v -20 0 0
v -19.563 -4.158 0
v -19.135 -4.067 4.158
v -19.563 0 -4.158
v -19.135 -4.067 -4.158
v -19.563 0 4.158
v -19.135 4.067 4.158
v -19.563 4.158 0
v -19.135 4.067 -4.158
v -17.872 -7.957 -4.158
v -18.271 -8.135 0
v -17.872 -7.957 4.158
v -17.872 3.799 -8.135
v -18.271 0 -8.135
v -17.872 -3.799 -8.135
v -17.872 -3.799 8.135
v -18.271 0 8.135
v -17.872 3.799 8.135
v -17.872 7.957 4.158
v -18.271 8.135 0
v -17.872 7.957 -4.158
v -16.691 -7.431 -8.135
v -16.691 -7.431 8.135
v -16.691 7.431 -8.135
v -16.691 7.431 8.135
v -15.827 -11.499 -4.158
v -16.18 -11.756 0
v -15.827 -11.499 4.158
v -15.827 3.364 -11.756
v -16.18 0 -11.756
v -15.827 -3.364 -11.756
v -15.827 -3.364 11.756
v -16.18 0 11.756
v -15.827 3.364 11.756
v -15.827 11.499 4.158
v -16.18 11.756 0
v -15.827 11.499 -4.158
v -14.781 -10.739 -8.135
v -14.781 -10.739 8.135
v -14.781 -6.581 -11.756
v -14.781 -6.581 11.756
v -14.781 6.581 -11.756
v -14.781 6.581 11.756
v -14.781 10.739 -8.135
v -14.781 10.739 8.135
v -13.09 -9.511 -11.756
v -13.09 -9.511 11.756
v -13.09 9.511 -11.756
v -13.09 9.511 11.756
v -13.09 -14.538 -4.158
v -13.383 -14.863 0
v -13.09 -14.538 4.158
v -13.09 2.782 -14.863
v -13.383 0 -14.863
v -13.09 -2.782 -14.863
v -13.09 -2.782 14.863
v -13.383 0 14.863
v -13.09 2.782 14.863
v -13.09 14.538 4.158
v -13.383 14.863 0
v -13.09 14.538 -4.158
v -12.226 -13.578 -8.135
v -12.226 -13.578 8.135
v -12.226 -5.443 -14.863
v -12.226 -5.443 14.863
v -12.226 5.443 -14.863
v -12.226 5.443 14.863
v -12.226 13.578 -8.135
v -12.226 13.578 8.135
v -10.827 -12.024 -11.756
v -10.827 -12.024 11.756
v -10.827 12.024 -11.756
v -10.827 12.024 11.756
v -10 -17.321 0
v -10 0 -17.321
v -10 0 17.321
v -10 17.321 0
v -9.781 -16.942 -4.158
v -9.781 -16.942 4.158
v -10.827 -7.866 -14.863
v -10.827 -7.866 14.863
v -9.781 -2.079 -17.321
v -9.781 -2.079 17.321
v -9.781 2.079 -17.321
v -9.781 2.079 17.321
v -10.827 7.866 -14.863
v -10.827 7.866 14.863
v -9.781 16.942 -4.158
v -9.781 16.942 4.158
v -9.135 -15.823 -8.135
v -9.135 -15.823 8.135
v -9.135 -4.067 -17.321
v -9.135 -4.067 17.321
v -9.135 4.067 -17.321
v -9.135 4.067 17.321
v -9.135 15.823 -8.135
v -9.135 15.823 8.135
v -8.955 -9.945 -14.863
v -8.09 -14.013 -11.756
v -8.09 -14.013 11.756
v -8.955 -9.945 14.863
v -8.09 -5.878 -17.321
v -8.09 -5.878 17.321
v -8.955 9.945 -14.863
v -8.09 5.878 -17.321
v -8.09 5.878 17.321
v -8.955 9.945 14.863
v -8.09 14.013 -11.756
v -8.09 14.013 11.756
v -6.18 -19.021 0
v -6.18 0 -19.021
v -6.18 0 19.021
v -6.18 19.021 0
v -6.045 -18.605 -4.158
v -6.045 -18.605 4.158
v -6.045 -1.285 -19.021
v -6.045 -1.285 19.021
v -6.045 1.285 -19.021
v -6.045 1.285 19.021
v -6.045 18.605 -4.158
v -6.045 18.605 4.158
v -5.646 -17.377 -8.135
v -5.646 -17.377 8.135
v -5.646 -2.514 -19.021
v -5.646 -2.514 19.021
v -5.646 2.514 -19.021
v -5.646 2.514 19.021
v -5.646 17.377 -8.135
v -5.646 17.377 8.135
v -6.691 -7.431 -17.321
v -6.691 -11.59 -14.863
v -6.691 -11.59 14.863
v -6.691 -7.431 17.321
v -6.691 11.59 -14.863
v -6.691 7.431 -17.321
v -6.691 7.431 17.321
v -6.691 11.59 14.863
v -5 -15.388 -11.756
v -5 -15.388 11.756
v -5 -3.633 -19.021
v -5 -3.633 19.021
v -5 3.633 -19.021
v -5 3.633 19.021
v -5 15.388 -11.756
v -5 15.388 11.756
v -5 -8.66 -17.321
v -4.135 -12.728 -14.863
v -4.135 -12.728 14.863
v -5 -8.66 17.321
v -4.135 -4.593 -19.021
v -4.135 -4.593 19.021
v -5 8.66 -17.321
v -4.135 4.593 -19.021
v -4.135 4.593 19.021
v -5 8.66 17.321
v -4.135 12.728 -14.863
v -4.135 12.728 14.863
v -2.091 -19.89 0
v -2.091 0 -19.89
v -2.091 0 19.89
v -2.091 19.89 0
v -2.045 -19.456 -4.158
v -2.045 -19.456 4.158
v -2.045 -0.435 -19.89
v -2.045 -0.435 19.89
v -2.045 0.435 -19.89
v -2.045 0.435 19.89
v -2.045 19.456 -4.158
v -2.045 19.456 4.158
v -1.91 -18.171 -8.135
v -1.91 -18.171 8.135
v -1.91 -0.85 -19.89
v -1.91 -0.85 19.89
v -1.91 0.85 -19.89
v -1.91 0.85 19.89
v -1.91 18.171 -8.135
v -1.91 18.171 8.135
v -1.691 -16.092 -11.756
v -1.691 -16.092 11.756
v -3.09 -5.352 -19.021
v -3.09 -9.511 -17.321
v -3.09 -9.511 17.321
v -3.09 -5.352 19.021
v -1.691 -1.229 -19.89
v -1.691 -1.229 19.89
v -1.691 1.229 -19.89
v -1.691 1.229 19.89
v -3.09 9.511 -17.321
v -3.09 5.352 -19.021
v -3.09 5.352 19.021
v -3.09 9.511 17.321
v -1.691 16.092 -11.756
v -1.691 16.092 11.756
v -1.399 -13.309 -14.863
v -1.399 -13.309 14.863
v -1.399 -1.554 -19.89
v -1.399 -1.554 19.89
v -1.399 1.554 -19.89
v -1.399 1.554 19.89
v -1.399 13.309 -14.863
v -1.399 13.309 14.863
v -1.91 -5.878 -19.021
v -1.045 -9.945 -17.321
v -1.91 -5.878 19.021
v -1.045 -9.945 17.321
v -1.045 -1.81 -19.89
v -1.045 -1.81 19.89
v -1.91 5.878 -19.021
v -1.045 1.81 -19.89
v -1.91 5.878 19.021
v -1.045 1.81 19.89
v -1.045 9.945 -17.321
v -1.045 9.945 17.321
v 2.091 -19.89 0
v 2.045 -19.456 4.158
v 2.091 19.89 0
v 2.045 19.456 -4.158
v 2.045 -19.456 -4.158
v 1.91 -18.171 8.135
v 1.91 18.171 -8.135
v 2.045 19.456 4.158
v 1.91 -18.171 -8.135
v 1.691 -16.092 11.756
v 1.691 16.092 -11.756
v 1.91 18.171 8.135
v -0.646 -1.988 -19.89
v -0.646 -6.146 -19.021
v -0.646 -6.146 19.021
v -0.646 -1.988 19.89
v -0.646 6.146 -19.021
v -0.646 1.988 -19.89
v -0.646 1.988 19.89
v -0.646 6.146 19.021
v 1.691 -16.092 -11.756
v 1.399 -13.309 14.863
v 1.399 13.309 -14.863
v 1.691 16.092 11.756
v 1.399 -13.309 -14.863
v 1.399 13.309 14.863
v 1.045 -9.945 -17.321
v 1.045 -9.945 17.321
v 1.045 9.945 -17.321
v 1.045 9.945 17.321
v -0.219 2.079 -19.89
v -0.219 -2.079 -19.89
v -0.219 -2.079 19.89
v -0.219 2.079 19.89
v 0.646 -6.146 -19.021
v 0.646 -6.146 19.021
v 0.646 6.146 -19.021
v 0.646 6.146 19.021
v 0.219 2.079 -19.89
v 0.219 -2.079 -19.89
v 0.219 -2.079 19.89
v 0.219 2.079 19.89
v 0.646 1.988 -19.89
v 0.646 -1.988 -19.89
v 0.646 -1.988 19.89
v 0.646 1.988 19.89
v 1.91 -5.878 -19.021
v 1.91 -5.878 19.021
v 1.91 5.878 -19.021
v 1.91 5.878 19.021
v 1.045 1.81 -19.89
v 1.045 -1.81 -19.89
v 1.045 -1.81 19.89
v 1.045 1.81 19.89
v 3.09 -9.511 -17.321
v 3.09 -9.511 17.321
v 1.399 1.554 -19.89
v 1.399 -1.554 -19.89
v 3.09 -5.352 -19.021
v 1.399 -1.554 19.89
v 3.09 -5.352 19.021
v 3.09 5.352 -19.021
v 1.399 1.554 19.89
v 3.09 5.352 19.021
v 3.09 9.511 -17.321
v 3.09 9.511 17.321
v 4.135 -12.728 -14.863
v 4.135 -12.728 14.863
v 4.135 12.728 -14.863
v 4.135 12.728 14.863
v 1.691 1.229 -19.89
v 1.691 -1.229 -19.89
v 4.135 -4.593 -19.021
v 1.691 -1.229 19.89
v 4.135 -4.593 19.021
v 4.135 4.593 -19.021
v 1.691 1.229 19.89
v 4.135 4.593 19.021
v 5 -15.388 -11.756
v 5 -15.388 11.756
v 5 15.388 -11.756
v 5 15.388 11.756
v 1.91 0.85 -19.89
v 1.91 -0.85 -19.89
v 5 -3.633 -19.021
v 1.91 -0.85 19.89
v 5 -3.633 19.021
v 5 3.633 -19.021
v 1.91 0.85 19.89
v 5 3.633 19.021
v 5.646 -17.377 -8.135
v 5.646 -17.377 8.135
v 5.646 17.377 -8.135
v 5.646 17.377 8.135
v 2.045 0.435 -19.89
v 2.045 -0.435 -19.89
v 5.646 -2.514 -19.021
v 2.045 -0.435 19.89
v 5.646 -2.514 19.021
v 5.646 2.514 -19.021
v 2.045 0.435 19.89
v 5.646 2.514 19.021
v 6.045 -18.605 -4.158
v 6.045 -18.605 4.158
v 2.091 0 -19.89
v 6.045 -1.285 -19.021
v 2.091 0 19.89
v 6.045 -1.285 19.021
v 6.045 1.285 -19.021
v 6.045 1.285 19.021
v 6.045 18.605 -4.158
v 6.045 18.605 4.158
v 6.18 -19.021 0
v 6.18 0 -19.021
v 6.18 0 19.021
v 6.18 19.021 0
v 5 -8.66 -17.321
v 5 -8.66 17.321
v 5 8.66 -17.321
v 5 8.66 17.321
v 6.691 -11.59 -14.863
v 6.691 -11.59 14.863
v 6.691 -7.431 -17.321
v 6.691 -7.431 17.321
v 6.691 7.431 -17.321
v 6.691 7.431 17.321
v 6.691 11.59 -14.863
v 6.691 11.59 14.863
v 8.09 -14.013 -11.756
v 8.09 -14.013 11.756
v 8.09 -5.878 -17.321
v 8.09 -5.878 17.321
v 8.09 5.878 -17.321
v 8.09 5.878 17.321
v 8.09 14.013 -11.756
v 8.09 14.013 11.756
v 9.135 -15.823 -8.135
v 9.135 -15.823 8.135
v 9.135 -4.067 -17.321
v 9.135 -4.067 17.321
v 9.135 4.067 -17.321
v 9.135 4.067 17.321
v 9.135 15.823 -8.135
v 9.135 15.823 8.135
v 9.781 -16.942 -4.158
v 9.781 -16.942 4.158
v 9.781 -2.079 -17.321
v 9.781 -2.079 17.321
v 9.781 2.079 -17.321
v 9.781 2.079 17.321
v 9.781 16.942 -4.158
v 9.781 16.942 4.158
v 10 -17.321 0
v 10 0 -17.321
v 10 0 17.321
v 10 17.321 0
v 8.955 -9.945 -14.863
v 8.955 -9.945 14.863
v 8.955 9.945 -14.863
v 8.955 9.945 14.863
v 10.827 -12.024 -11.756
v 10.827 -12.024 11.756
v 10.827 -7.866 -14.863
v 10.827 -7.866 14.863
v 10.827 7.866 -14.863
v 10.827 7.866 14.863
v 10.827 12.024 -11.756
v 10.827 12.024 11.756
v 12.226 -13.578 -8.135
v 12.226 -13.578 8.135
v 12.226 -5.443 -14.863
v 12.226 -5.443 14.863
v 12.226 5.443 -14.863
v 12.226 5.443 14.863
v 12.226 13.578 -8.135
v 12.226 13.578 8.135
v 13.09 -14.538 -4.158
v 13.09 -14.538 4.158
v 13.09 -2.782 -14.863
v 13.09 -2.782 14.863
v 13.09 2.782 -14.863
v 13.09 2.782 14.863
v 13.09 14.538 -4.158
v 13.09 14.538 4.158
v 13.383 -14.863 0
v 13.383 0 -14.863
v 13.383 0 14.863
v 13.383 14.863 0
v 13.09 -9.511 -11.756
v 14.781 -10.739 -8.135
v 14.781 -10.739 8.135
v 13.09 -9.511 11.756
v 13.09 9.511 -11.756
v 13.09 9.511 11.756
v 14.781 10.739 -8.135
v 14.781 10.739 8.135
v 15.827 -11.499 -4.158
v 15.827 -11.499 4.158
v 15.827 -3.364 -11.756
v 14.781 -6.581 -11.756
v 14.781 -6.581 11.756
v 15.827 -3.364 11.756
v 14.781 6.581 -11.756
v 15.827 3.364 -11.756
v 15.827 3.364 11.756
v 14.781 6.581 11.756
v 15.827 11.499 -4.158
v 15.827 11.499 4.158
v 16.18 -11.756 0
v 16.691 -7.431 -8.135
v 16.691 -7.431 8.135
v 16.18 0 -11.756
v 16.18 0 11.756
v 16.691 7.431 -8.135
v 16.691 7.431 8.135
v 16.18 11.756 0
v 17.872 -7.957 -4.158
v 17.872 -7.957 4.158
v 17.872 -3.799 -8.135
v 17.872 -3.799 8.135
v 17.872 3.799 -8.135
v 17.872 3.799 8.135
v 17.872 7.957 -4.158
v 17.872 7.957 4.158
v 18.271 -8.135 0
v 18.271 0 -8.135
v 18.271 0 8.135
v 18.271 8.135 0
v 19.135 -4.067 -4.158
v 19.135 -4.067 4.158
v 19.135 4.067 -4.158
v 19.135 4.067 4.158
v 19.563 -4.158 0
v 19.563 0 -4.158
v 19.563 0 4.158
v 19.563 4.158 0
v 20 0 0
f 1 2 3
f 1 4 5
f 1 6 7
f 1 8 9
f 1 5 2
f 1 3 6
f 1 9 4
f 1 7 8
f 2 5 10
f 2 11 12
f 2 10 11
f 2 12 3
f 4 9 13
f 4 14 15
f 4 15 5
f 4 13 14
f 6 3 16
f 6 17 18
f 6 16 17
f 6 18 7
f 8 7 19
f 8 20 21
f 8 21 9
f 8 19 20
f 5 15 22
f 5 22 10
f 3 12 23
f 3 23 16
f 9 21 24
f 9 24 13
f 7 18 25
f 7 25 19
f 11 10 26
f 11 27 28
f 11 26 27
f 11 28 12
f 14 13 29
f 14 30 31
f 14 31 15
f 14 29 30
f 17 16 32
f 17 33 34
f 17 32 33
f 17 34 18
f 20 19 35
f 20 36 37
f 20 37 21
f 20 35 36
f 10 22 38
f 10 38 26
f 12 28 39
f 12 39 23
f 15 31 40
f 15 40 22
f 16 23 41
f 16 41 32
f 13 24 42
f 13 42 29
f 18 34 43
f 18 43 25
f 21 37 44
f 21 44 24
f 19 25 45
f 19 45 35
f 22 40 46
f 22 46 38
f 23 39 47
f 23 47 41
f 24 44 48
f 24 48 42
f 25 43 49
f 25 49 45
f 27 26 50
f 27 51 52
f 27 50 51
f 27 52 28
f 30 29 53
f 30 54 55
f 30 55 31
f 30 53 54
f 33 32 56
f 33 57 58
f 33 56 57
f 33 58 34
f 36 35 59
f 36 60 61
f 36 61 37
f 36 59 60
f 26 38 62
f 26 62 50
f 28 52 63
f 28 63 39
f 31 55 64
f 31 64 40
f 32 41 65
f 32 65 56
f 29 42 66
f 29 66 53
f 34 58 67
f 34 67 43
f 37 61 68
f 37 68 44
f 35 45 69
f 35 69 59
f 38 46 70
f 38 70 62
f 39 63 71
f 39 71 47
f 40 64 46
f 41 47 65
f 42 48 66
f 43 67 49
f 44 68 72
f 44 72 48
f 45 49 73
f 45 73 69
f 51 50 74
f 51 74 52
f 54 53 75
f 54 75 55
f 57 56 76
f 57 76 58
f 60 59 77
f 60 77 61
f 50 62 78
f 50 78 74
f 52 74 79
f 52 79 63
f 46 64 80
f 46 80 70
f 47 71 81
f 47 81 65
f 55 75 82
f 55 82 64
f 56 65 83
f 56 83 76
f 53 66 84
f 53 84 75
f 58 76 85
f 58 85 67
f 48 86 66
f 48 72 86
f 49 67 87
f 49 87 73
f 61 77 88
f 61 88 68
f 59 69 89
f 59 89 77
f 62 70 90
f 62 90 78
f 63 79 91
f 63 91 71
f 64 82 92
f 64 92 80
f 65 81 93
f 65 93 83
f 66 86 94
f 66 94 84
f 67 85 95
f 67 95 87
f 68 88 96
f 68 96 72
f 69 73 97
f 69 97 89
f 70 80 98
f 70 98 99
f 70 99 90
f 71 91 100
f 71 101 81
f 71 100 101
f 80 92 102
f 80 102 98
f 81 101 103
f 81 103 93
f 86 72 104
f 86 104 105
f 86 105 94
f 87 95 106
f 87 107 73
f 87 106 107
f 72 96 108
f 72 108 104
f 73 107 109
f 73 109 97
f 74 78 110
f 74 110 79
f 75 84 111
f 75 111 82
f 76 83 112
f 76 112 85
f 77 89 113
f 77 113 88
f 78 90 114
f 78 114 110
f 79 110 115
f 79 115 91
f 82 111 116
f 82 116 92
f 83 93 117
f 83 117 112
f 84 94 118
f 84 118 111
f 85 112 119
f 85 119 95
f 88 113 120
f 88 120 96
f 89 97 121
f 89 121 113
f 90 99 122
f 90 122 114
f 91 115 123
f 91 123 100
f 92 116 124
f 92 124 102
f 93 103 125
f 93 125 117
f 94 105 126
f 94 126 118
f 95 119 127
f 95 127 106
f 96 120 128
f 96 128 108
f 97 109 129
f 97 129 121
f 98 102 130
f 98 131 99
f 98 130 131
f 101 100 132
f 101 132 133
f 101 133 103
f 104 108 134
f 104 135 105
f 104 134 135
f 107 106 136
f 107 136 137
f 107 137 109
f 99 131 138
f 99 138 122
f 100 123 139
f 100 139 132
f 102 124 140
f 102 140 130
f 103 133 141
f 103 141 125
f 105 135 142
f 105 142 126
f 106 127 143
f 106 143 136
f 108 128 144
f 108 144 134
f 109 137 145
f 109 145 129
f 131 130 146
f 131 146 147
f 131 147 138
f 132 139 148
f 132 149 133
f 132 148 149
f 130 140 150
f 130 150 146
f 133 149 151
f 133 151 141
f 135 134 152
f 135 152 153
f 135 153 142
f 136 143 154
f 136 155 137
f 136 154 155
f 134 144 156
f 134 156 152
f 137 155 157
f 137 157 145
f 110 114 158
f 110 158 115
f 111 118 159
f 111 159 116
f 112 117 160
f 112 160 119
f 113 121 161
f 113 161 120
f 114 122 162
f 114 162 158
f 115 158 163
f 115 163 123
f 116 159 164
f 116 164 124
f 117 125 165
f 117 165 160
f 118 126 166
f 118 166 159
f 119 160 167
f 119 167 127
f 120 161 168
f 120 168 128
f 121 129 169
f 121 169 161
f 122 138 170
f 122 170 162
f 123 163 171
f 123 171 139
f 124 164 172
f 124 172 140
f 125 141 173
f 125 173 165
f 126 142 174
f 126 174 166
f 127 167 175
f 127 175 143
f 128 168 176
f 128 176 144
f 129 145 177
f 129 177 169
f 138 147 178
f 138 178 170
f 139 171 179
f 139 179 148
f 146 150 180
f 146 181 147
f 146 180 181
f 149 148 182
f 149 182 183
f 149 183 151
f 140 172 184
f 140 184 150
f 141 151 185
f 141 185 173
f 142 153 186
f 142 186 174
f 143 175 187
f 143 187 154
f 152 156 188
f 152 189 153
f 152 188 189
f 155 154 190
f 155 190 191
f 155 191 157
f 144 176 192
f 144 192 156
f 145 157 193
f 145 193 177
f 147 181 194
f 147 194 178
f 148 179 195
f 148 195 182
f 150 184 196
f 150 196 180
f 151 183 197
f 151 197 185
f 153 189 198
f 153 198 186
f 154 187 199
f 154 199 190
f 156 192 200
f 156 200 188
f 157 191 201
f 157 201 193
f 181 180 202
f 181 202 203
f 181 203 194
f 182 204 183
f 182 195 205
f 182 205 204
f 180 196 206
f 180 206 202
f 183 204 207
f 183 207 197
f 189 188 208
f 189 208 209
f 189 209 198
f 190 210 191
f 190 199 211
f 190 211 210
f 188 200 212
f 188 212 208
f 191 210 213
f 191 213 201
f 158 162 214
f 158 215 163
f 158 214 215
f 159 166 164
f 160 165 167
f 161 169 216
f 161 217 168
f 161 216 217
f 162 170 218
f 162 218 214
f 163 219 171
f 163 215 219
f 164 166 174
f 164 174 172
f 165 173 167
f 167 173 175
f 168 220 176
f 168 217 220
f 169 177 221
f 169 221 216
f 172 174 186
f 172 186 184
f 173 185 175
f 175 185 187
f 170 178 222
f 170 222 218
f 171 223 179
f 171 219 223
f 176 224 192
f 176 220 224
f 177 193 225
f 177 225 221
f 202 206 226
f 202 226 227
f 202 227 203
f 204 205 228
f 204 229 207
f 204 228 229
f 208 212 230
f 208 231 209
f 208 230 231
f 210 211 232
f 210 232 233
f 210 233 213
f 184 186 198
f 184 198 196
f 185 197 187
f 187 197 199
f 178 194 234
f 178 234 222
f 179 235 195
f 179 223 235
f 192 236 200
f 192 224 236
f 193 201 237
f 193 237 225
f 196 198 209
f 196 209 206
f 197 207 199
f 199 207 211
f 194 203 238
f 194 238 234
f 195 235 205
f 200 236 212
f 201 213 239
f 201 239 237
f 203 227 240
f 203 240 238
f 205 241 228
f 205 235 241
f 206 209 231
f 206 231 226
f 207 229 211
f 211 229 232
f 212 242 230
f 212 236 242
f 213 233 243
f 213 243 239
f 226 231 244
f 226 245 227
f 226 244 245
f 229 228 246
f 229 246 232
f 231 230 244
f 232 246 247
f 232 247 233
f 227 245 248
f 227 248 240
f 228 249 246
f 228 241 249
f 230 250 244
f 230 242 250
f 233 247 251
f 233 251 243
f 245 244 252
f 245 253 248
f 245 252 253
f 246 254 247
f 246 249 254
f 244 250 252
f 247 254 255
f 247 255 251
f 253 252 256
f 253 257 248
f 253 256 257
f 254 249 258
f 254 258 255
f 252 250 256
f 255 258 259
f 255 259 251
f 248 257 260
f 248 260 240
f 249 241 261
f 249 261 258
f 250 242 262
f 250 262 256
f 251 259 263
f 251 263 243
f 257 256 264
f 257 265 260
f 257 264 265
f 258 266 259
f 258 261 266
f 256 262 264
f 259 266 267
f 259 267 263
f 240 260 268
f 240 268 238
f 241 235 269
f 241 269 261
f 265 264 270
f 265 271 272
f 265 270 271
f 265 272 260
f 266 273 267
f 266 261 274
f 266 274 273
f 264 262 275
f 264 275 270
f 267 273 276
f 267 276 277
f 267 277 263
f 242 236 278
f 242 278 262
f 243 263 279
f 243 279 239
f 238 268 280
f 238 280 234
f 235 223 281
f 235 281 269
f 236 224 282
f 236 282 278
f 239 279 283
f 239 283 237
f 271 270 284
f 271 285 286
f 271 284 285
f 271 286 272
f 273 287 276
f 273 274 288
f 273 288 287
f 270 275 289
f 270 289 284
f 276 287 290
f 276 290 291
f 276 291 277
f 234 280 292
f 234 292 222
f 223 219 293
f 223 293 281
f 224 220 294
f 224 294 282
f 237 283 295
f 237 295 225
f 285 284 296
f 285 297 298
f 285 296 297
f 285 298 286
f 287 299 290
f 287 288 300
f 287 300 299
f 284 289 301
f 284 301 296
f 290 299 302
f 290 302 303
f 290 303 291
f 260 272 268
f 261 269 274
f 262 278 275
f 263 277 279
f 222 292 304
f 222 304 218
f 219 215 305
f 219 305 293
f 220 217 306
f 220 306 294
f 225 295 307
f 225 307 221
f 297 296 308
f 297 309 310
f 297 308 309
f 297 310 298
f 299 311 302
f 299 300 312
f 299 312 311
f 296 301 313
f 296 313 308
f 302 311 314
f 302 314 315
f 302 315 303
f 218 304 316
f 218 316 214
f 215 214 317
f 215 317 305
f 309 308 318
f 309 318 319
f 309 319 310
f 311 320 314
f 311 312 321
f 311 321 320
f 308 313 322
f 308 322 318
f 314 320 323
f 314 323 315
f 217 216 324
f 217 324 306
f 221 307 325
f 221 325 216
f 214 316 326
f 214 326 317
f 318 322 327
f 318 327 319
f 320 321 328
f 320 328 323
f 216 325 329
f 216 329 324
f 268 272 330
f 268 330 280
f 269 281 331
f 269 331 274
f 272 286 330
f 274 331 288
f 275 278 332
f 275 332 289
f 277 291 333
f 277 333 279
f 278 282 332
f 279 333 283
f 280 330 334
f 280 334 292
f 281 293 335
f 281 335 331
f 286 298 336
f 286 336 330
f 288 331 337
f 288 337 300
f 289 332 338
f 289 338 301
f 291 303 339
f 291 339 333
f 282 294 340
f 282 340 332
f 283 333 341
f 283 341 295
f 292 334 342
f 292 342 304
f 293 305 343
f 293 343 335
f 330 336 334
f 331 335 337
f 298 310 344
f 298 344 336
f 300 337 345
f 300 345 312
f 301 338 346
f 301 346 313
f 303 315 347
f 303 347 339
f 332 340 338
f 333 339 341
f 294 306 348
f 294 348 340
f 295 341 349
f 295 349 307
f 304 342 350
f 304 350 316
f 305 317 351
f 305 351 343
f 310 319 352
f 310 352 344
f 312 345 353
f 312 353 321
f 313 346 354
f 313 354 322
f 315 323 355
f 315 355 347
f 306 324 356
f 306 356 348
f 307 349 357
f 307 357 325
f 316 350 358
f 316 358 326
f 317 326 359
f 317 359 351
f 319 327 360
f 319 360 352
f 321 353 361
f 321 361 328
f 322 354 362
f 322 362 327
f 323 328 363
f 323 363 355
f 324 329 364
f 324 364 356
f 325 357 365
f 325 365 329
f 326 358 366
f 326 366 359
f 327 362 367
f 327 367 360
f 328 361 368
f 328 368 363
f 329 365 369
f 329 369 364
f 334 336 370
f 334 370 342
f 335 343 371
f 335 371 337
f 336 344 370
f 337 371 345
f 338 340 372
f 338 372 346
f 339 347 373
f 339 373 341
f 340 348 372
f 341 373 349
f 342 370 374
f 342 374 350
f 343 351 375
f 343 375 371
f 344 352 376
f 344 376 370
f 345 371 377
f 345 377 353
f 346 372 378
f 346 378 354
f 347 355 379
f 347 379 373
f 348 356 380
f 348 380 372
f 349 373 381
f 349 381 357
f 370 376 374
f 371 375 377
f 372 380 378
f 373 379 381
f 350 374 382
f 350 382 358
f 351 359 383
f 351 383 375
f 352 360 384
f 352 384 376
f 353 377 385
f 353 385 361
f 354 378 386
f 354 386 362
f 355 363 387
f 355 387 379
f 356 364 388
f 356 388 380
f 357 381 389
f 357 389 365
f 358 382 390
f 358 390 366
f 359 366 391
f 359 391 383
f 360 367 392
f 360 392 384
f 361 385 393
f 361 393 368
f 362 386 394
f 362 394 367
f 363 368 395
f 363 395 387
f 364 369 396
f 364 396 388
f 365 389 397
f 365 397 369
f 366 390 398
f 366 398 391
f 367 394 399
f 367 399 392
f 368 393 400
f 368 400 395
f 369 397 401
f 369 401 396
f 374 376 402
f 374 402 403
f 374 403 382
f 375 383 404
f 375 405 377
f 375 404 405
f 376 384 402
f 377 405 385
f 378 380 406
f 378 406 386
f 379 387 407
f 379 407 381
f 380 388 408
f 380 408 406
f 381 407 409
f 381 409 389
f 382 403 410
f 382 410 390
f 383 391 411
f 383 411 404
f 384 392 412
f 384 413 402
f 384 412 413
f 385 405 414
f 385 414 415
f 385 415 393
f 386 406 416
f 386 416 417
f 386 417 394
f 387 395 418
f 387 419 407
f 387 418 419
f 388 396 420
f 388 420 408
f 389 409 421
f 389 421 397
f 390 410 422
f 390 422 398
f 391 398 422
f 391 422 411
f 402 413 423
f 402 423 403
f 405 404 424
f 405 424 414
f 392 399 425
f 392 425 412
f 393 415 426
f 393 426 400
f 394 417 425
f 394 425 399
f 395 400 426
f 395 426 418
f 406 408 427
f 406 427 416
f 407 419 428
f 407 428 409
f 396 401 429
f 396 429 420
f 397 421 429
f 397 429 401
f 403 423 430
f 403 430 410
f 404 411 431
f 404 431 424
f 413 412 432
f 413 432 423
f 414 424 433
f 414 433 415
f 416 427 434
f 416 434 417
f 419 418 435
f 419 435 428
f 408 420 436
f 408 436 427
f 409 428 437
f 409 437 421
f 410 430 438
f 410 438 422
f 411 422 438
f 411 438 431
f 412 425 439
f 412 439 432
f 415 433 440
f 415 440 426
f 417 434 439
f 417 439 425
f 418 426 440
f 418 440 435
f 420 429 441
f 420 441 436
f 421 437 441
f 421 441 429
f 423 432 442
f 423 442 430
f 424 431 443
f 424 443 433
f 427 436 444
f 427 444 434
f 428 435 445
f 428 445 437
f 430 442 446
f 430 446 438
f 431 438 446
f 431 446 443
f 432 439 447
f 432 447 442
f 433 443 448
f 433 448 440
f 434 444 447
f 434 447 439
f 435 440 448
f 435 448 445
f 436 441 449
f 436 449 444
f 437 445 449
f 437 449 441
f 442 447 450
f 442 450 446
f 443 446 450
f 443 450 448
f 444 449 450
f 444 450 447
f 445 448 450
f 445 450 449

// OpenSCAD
// Start: lazy_union
default_5_default_5();
// End: lazy_union

// Modules.

// 'PartMaterial undef-default - default 5.0'
module default_5_default_5() {
  // 'None : _combine_solids_and_holes'
  union() {
    // 'default : _combine_solids_and_holes'
    union() {
      // 'default'
      sphere(r=20.0);
    }
  }
} // end module default_5_default_5
